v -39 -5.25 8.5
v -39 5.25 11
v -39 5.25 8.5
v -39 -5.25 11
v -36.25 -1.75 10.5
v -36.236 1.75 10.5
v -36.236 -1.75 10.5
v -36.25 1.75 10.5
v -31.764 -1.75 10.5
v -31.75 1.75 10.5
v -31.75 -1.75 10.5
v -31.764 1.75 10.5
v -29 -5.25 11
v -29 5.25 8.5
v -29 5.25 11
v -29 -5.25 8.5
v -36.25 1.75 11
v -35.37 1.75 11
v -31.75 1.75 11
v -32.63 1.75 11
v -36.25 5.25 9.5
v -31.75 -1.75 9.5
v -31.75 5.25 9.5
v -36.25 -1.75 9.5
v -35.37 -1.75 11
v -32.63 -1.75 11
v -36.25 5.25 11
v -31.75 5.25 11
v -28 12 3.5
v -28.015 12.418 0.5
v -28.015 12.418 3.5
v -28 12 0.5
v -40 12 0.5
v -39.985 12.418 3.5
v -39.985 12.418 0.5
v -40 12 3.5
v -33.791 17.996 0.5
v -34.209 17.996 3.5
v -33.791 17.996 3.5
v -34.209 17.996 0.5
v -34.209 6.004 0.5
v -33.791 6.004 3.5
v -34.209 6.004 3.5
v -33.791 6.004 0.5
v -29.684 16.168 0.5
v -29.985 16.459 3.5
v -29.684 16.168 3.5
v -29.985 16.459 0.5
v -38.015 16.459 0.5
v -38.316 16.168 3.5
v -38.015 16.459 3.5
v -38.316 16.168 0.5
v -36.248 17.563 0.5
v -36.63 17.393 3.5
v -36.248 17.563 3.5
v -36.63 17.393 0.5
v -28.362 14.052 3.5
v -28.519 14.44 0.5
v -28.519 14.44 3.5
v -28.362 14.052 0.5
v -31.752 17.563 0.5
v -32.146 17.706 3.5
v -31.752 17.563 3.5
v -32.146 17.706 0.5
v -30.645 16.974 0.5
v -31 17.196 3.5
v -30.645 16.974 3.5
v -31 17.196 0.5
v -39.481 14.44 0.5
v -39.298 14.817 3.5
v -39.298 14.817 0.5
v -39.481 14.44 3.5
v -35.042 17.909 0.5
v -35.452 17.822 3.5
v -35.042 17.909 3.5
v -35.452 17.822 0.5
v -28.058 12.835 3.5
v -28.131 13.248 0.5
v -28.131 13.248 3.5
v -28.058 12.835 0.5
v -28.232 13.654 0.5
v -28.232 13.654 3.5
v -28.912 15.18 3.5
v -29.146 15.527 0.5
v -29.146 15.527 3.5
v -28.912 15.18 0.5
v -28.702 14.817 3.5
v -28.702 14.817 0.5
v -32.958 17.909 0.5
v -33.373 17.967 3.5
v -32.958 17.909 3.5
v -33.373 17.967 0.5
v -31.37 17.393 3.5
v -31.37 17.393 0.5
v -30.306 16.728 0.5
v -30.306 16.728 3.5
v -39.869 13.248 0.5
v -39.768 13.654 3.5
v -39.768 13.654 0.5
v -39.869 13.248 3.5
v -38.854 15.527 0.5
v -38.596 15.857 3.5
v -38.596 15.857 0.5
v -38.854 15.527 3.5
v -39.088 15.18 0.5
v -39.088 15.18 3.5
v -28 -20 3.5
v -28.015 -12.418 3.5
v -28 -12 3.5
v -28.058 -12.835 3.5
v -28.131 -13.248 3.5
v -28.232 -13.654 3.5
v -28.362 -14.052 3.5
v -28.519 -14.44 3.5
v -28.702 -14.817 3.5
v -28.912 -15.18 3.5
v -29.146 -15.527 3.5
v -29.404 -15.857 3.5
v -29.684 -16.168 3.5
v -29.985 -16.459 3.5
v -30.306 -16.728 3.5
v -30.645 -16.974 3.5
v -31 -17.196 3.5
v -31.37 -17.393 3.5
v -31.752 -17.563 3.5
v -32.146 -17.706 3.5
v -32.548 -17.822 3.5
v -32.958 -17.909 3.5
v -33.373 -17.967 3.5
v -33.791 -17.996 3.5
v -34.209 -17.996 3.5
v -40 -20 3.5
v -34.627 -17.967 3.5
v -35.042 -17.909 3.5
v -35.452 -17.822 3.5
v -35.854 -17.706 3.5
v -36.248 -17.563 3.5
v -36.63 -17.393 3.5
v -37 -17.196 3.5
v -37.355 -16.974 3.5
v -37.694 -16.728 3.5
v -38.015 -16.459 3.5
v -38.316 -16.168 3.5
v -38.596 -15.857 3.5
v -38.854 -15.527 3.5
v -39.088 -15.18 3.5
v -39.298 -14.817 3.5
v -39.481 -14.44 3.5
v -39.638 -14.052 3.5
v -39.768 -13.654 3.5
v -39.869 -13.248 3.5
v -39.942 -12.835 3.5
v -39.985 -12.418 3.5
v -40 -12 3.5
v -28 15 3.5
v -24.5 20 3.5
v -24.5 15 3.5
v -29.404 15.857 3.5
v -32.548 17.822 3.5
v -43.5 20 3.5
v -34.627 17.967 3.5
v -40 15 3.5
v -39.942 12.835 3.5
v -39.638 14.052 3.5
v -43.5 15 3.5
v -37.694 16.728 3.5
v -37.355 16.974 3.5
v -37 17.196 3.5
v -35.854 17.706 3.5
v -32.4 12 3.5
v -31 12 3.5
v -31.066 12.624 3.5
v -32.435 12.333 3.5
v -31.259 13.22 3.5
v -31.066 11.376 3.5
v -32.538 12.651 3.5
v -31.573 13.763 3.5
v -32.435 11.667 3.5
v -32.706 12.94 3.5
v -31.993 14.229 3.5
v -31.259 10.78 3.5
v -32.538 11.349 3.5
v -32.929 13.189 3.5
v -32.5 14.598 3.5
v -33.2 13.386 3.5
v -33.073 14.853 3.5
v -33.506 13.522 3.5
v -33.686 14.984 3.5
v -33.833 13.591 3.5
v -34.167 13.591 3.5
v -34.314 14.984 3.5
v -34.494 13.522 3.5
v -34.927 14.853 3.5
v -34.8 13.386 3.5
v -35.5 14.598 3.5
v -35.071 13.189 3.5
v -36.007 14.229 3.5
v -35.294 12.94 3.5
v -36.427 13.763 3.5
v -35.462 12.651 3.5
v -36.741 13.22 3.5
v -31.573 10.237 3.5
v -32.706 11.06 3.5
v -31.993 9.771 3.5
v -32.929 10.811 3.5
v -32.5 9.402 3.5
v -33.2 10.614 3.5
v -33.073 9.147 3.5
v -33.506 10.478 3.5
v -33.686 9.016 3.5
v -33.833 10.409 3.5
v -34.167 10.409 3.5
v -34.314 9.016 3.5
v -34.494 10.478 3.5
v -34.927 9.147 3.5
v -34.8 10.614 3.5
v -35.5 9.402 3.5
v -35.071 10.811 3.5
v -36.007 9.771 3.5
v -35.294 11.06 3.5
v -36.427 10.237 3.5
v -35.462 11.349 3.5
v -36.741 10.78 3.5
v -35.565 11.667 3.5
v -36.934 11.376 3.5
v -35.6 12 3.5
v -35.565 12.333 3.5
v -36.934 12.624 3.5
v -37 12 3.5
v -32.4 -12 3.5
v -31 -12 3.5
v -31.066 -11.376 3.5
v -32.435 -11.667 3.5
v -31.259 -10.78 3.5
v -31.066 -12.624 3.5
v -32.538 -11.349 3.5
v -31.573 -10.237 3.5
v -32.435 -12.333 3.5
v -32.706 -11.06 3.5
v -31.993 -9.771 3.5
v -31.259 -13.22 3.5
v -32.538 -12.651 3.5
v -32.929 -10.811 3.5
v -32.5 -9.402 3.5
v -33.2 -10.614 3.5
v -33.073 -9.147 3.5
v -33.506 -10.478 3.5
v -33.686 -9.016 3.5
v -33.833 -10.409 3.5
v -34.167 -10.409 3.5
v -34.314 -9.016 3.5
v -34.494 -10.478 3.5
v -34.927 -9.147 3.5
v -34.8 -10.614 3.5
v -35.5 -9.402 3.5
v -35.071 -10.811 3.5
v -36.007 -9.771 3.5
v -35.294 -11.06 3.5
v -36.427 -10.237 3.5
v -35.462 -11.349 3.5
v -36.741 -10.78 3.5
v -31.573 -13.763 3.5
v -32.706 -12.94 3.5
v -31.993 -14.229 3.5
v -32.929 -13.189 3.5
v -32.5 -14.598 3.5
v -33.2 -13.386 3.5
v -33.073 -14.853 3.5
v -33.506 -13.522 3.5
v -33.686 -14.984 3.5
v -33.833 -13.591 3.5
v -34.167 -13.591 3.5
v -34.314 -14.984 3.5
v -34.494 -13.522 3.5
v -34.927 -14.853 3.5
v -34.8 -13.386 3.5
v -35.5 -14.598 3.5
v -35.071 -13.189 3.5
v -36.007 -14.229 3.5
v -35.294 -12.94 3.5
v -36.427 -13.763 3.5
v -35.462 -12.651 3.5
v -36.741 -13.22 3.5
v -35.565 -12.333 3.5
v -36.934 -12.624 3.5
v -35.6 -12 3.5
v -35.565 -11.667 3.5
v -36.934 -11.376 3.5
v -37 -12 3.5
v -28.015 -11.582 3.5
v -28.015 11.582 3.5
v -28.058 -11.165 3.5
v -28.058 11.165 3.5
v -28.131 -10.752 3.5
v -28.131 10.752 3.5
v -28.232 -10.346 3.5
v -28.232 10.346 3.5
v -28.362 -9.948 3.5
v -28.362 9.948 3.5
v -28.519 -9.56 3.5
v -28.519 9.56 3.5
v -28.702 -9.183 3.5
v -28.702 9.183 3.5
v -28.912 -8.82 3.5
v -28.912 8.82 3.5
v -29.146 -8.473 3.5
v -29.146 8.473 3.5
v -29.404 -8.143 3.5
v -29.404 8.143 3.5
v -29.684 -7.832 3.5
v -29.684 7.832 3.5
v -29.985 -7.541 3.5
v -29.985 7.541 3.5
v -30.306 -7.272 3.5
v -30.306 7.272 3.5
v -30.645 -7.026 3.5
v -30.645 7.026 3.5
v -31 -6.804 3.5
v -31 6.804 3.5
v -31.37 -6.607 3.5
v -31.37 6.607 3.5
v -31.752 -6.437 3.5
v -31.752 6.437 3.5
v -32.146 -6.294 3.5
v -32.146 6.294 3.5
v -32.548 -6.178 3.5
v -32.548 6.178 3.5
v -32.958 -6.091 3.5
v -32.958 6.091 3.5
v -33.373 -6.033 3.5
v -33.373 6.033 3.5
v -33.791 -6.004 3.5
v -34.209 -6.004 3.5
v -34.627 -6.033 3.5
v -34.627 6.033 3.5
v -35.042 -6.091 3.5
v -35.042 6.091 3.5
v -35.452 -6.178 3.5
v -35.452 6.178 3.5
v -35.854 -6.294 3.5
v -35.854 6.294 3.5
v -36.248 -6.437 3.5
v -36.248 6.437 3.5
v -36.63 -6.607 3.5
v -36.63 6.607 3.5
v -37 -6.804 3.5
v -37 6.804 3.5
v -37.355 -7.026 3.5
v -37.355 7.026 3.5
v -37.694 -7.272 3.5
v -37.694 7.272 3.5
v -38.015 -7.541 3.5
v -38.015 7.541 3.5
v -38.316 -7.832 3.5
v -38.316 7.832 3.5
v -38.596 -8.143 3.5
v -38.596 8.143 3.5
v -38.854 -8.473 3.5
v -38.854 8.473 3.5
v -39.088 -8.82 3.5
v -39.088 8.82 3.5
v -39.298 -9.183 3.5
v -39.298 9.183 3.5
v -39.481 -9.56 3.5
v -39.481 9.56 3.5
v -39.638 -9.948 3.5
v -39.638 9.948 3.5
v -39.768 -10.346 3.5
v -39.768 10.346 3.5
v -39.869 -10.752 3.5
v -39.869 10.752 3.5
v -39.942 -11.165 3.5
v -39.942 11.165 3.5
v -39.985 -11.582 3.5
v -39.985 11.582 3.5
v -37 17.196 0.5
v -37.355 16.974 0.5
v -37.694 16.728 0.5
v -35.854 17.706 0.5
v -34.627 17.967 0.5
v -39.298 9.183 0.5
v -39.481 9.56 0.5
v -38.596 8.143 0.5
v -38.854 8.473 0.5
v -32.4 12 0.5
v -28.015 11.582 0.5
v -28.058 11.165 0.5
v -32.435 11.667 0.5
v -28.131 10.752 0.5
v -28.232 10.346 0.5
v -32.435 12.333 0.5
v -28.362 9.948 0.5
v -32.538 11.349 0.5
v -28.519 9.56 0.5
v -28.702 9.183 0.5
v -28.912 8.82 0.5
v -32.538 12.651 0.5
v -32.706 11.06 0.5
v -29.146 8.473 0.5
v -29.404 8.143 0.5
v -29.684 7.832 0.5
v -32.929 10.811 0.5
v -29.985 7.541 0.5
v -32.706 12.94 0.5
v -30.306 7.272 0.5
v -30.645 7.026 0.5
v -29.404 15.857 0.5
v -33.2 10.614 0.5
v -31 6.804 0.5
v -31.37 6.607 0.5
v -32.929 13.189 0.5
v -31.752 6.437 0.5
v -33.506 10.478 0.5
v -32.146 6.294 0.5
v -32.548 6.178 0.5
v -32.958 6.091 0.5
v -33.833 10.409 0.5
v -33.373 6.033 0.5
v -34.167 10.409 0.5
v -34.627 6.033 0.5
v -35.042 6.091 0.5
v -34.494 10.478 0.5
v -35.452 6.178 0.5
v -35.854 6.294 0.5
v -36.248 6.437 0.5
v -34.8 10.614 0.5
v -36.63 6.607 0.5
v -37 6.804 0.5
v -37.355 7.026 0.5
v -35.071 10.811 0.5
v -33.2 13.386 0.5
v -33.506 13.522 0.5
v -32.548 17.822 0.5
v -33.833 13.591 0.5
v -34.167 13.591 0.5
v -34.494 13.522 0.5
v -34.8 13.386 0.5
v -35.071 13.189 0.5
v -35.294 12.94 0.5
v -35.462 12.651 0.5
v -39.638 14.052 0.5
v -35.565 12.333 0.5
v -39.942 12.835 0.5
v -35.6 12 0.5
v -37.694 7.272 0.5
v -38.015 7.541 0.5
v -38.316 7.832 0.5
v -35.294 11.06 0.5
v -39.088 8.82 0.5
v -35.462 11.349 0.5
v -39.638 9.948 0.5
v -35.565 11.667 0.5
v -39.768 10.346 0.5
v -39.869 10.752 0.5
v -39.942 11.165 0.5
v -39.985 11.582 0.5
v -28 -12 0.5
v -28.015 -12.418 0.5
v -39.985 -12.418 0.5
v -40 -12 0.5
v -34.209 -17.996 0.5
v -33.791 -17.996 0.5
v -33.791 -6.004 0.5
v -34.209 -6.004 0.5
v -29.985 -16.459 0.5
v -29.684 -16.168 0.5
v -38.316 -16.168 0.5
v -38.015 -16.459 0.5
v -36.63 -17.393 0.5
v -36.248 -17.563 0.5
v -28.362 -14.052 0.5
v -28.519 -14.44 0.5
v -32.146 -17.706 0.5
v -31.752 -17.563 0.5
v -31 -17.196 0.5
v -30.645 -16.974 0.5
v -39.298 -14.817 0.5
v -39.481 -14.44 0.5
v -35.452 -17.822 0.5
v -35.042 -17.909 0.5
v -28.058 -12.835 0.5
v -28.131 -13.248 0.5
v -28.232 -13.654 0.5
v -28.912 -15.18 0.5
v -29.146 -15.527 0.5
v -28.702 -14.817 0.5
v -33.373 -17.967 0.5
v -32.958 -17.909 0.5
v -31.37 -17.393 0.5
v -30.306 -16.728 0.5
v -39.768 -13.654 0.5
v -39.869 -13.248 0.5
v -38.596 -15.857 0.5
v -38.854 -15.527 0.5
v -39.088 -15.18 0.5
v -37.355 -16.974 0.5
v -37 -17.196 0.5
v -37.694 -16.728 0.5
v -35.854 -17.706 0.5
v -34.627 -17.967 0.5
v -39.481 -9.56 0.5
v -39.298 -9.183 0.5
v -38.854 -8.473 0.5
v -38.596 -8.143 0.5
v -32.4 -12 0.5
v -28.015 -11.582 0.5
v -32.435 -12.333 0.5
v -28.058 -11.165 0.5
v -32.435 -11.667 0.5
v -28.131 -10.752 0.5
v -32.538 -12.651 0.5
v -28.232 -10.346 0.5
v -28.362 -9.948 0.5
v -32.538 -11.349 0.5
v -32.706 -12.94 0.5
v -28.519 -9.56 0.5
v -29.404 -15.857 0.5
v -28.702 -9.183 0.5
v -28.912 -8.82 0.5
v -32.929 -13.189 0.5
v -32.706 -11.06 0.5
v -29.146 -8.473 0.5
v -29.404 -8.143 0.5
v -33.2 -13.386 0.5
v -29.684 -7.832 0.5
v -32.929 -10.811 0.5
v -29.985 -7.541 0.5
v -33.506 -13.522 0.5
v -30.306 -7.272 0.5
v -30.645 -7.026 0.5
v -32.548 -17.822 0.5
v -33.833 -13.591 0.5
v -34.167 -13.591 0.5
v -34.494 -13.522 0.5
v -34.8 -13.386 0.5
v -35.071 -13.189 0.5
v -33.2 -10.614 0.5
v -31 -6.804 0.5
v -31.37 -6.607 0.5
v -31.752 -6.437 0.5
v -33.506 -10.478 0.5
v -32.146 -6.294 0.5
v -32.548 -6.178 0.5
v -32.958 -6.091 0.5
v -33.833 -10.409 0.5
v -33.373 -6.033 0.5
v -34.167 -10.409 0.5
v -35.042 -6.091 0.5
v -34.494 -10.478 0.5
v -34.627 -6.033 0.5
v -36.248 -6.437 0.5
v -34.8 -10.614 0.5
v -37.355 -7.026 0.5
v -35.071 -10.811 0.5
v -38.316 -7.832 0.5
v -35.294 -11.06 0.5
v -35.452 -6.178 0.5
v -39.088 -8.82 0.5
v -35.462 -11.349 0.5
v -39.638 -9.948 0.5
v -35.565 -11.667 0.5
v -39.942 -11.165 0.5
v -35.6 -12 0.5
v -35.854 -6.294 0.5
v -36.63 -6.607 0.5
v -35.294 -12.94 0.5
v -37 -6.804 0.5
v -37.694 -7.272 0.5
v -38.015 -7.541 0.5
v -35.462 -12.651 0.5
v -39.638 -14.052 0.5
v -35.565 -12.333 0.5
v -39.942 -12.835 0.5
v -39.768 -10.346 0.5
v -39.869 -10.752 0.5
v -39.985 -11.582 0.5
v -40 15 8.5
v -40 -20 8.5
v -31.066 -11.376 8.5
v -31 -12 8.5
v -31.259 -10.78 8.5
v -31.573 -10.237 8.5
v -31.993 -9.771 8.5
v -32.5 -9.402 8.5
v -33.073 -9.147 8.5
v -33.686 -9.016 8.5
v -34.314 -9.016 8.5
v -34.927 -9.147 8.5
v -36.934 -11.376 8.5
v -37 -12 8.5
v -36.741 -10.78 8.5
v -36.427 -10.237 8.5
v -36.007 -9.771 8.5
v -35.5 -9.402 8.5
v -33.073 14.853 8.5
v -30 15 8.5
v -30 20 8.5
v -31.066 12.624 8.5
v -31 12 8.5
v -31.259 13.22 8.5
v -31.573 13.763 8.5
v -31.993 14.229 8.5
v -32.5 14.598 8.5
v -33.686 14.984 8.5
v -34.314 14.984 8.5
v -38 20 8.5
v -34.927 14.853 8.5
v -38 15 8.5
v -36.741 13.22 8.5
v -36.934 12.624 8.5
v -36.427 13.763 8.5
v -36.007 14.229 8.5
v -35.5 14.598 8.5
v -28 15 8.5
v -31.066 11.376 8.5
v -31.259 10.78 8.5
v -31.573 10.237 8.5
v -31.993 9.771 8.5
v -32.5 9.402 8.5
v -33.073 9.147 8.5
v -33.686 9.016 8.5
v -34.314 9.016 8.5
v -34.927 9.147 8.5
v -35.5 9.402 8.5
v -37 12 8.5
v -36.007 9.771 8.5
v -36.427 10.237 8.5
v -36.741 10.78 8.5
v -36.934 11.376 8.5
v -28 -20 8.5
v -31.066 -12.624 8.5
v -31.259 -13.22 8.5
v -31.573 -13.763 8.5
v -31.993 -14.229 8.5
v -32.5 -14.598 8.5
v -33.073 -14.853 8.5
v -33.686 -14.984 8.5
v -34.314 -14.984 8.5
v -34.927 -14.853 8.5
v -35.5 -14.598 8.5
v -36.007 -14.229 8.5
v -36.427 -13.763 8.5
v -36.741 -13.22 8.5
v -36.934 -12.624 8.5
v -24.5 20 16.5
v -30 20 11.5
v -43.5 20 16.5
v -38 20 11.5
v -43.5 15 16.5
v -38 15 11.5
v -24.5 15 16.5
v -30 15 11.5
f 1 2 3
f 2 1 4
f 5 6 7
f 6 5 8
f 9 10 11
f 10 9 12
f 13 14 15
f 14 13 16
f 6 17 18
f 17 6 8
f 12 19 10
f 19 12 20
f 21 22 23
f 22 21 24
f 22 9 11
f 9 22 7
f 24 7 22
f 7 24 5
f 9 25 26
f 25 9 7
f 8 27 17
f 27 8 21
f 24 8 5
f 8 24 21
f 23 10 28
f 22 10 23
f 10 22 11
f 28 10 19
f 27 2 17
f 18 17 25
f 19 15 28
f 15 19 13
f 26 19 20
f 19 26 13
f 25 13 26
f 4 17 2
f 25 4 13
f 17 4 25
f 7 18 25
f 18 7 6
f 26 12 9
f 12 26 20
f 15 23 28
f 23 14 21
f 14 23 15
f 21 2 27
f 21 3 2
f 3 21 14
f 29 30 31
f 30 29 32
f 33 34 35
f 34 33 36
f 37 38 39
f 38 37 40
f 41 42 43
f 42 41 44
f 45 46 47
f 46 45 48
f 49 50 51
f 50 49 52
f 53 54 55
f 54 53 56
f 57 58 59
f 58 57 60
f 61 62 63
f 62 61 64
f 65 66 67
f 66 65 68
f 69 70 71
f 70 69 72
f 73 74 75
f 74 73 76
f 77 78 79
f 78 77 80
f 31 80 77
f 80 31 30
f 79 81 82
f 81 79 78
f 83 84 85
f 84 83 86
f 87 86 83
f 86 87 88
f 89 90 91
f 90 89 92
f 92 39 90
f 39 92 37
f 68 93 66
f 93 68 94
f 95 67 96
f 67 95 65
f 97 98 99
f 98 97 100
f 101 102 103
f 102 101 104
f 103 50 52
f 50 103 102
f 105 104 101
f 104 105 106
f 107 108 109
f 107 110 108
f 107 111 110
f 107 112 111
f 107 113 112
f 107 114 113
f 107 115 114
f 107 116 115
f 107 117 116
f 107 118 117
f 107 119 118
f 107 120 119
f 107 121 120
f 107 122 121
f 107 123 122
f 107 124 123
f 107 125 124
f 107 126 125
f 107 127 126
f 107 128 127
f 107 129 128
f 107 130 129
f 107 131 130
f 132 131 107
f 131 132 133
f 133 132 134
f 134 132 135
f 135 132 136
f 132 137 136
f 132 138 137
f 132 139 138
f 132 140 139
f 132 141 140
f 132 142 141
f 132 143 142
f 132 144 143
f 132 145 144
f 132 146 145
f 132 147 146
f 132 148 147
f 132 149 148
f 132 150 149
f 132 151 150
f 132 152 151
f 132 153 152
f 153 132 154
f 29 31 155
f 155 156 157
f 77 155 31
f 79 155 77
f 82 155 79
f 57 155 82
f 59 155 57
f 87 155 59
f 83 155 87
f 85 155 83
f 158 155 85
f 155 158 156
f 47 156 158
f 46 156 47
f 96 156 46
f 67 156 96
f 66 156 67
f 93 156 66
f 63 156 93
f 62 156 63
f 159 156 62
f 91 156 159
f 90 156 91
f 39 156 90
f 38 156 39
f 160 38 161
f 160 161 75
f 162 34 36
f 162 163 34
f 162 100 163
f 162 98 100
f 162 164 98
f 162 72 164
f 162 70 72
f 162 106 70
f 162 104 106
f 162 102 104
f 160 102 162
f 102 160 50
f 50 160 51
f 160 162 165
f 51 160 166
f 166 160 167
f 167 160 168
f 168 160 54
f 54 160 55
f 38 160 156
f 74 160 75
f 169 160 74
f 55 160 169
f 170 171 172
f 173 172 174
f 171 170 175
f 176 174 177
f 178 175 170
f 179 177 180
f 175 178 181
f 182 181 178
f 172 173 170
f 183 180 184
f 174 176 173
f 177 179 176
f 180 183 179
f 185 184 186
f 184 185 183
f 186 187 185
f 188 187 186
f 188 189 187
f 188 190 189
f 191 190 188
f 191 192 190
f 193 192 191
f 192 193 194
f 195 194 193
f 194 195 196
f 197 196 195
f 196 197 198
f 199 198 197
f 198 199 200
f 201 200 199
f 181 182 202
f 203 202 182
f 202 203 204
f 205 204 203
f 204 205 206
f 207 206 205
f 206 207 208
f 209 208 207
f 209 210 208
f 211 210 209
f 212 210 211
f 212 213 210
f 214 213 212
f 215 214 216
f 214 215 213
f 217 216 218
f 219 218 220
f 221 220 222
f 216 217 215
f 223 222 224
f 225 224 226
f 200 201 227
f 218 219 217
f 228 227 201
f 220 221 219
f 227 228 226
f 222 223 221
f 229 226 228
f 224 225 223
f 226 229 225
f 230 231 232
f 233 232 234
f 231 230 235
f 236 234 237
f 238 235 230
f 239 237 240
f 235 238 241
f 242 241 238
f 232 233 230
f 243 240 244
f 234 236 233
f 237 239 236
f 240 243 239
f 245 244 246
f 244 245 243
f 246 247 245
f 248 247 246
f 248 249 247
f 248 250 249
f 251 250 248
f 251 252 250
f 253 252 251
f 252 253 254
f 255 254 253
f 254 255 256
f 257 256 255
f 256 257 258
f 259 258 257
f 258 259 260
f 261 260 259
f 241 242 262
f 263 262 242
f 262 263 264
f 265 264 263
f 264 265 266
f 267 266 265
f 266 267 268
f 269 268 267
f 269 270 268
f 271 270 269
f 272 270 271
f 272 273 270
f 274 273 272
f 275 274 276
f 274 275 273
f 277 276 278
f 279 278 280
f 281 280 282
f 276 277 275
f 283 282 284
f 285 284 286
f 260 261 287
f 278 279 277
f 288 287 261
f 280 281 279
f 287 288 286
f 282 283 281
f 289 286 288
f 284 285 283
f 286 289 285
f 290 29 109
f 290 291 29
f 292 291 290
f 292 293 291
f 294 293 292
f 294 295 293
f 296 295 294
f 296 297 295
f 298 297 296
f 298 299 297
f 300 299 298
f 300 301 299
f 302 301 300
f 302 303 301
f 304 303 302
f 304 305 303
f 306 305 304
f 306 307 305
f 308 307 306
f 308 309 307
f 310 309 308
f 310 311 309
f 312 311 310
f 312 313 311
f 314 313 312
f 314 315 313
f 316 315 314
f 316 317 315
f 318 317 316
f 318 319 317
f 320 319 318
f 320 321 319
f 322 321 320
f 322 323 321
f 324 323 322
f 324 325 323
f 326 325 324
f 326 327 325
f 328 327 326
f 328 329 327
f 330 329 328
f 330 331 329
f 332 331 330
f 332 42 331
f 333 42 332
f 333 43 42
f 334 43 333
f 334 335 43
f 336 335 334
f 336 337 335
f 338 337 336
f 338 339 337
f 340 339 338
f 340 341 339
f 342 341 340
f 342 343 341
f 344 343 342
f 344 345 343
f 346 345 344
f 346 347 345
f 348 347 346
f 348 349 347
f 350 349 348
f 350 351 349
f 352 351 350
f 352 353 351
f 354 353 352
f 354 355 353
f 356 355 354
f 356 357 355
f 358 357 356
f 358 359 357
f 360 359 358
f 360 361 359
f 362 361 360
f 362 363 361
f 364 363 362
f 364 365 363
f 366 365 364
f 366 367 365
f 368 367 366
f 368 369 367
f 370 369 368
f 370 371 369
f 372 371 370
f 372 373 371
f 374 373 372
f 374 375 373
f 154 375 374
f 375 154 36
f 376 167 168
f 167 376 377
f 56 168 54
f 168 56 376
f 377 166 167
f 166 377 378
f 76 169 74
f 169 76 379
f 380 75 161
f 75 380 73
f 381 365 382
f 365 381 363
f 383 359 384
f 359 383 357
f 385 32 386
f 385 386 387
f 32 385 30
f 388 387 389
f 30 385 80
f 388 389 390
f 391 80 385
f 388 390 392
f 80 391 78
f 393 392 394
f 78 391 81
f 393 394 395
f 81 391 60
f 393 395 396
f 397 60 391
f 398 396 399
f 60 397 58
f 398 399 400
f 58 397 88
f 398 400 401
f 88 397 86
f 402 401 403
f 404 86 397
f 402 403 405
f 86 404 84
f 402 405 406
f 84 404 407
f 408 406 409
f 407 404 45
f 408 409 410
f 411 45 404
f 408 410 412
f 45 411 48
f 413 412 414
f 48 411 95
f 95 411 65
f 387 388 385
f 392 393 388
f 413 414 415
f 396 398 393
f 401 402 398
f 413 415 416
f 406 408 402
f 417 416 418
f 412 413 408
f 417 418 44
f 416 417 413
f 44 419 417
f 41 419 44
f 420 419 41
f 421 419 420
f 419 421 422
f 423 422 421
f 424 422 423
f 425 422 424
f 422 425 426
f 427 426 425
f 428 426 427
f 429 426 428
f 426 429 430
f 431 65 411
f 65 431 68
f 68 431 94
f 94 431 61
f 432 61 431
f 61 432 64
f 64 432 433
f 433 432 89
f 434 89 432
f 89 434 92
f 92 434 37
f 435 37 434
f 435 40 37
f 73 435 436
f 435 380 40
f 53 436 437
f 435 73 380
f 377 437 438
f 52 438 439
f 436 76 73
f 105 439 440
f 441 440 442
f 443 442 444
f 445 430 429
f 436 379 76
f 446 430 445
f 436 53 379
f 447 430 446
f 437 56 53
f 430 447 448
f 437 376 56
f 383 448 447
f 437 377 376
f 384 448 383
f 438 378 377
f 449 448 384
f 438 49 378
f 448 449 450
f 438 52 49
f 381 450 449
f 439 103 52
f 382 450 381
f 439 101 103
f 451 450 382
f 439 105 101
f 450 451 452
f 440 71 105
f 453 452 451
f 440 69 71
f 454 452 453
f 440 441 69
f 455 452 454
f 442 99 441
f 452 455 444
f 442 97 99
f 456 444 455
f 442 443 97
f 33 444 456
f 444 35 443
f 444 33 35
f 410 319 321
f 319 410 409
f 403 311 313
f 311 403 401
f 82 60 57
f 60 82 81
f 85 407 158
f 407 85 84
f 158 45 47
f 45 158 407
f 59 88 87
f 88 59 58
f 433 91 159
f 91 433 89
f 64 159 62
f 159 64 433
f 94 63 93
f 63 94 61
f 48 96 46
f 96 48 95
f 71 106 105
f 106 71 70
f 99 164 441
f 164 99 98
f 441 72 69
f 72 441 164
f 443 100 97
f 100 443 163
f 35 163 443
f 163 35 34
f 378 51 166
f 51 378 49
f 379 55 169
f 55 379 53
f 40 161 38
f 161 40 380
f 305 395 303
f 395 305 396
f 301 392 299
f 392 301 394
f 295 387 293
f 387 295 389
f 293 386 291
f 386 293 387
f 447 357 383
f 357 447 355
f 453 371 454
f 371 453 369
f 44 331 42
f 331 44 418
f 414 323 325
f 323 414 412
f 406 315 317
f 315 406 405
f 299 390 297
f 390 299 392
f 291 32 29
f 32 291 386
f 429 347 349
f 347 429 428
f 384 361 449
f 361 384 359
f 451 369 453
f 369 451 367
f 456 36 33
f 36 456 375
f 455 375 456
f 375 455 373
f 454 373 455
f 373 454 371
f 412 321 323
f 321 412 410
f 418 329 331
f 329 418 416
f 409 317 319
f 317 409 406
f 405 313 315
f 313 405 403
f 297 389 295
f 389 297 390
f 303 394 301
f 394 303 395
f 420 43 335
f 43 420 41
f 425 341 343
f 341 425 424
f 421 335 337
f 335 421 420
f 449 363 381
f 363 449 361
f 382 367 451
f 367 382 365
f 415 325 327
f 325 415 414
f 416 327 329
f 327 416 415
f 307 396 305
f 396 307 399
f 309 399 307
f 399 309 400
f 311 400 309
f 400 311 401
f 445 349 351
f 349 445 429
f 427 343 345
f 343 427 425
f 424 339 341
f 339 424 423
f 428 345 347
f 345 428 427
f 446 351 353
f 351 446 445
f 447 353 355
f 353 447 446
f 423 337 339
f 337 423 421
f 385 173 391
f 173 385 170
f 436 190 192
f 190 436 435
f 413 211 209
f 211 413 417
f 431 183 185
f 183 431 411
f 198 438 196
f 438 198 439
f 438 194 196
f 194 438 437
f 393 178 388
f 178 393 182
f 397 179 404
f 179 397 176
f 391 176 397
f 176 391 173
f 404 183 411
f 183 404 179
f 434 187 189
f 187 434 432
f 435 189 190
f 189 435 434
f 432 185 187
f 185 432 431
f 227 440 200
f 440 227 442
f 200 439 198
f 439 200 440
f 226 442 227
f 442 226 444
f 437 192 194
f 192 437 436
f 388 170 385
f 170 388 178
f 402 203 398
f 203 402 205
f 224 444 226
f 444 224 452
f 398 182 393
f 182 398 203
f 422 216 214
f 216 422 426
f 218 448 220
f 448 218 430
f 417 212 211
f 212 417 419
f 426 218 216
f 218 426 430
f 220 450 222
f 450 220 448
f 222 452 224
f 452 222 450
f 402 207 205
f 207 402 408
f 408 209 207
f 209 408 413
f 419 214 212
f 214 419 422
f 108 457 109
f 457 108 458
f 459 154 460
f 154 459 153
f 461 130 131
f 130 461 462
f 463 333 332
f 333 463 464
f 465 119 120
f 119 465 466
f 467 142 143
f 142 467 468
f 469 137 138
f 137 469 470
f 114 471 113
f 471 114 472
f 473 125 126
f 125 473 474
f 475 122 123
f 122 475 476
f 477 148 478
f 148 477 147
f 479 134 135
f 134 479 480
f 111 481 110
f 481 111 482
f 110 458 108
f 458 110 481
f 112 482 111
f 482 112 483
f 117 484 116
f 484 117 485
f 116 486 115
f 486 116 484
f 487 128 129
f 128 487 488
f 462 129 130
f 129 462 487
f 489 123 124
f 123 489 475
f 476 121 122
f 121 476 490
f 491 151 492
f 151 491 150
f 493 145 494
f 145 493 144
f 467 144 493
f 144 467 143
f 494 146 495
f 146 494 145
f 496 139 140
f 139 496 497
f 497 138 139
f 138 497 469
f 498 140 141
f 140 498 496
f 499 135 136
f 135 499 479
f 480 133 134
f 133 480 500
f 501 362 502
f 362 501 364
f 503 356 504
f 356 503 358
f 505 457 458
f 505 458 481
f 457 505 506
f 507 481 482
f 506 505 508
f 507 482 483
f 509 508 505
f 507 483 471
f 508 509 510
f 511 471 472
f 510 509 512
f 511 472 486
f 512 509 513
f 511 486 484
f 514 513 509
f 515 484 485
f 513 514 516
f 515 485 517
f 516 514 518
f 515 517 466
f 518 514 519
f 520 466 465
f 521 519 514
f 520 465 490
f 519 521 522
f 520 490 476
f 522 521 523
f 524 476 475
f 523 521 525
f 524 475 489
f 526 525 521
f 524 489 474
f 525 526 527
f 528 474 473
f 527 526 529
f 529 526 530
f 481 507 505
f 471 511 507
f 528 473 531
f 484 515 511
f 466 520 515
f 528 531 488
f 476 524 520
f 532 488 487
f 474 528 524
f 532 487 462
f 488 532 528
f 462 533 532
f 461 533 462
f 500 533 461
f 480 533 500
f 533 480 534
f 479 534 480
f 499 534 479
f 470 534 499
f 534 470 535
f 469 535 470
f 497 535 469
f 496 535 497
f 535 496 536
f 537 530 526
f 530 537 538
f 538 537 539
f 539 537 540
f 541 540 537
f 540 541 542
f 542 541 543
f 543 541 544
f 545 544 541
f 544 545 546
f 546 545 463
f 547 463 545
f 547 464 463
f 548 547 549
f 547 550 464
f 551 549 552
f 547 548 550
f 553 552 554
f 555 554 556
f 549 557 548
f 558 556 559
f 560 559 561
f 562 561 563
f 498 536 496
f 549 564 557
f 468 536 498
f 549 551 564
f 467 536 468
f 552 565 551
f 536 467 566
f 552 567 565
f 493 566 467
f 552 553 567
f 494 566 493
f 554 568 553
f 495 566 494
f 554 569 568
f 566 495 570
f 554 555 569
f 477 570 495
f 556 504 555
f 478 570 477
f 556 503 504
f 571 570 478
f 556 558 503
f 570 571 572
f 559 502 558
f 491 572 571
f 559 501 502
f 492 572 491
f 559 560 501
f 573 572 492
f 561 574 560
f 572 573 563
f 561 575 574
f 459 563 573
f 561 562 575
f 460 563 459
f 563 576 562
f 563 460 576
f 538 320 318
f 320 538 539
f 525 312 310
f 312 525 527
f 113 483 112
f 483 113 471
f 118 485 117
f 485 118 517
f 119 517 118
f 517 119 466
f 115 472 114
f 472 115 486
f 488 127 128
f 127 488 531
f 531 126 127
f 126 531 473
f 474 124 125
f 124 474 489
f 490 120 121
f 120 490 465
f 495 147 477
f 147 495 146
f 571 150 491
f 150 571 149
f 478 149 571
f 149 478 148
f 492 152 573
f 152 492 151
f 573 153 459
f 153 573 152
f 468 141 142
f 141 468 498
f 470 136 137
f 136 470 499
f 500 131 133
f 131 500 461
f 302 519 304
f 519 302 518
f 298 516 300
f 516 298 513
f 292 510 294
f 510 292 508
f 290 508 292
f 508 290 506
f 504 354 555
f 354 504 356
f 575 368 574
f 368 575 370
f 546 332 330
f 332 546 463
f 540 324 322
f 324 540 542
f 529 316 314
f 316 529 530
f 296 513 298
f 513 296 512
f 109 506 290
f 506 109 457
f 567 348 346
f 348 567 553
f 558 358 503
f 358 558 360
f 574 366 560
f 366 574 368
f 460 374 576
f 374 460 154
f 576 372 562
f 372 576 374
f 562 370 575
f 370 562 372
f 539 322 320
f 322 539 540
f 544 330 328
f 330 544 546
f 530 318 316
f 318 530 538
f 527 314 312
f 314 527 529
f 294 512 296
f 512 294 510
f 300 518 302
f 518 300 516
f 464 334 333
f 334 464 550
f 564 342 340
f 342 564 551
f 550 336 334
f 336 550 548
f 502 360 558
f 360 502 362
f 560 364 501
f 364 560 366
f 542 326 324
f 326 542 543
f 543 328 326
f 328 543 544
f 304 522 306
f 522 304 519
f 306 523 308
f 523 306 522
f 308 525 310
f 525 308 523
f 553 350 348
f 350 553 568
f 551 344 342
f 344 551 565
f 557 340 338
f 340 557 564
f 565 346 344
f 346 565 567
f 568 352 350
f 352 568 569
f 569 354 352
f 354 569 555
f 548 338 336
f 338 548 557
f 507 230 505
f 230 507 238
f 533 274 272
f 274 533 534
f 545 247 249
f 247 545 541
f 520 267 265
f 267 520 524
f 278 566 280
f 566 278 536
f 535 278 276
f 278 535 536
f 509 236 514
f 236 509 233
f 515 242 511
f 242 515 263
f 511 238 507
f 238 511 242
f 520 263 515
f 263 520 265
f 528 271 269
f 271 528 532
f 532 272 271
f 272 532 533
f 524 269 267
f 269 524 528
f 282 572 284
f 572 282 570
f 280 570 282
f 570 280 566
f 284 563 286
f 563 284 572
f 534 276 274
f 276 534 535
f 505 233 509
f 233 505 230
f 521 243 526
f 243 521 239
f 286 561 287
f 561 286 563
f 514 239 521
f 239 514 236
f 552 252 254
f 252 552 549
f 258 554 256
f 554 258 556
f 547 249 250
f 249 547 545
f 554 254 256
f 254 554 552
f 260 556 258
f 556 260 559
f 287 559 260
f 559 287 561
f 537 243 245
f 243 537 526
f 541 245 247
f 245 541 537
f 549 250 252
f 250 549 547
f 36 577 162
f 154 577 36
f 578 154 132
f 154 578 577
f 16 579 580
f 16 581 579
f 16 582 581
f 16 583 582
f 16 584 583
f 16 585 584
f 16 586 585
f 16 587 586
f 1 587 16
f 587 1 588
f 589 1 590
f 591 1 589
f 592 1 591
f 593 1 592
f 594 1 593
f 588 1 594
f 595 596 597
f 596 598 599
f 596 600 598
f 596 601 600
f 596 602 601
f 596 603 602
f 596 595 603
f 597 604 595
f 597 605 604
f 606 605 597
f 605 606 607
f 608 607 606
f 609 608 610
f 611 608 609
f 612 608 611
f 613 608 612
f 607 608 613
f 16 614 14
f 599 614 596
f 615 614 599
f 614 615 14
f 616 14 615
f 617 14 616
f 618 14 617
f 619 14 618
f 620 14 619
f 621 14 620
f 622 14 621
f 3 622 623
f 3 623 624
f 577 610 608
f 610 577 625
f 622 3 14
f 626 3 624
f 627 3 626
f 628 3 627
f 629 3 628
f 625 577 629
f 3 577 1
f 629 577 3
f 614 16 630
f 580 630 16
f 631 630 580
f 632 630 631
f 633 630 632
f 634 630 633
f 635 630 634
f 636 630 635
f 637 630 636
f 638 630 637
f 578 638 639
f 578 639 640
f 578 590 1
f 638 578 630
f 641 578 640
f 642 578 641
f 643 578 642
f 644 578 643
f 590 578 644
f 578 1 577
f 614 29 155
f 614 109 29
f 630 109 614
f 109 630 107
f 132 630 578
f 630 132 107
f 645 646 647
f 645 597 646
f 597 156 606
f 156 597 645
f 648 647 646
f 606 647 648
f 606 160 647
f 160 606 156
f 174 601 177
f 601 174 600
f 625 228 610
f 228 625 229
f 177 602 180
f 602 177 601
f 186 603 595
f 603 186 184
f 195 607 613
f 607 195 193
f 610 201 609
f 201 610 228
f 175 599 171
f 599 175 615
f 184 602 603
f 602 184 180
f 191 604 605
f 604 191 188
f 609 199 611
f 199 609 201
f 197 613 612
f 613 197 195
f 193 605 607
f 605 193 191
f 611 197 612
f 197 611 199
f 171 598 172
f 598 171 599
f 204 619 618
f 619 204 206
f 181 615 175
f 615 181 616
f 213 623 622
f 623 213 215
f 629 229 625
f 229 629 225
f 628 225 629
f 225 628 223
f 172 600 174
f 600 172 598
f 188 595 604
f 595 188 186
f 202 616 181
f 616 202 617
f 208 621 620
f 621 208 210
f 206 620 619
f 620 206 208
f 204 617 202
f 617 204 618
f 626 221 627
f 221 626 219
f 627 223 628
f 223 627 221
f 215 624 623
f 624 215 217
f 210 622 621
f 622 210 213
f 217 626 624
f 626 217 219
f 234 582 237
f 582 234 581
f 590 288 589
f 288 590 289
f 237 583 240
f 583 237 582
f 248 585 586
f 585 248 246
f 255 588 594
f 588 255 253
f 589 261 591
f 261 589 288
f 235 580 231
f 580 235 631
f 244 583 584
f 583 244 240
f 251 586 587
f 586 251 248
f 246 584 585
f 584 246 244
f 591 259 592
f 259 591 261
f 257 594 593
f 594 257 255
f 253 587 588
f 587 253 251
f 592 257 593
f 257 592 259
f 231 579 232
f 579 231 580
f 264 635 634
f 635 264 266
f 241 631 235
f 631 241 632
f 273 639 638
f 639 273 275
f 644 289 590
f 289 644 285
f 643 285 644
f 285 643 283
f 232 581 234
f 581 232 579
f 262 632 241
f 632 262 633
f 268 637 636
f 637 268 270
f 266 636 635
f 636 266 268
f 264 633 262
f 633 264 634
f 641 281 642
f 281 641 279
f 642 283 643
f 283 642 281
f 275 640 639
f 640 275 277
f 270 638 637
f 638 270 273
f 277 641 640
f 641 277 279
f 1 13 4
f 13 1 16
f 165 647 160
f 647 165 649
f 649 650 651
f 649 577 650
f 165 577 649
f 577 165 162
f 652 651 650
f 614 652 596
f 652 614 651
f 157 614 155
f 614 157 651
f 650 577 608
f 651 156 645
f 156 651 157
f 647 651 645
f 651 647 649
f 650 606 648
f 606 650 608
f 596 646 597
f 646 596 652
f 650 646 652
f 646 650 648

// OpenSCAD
hallEffectSensor();







module hallEffectSensor(){

///////////////////////////////////////////////////////////////
//Tob hall effect sensor box
//////////////////////////////////////////////////////////////
translate([0,0,0]){
difference(){
translate([-34,0,10]) cube([10,3.5,1], center = true);

translate([-34,0,10]) cube([4+0.5,4,1], center = true);  
}    

difference(){
translate([-34,0,10+0.5+0.25]) cube([10,3.5,0.5], center = true);


translate([-34,0,5.4+0.3]) rotate([0,60,0]) cube([10.55,4,6], center = true);  
    
translate([-34,0,5.4+0.3]) rotate([0,-60,0]) cube([10.55,4,6], center = true);      
}  


translate([-34,-3.5,10+0.25]) cube([10,3.5,1.5], center = true);

difference(){
translate([-34,3.5,10+0.25]) cube([10,3.5,1.5], center = true);

translate([-34,0,10+0.25]) cube([4+0.5,15,1.5], center = true); 

}


translate([-34,0,10-1.25]) cube([10,10.5,1.5], center = true);


//end of hall effect sensor box


for(i=[0,1]) mirror([0,i,0]){
difference(){    
translate([-34,12,2]) rotate([0,0,0]) cylinder(h = 3, d=12, $fn = 90, center = true);

//hole through baseplate
translate([-34,12,-8]) rotate([0,0,0]) cylinder(h = 25, d=3.2, $fn = 30, center = true);
}}

difference(){
    
//baseplate    
translate([-34,0,6]) cube([12,40,5], center = true);

translate([-34,12,6]) rotate([0,0,0]) cylinder(h = 6, d=6, $fn = 30, center = true); 
translate([-34,-12,6]) rotate([0,0,0]) cylinder(h = 6, d=6, $fn = 30, center = true);    
}  
}


///////////////////////////////////////////////////////////////







//bottom mount

translate([-34,-1.75,11.5])rotate([90,0,0]){
difference(){  
translate([0,-1.5,-19.25])cube(size = [15+4,8+5,5], center = true);

translate([0,-1.5,0]) cube(size = [8,3,100], center = true);
}

}









}
